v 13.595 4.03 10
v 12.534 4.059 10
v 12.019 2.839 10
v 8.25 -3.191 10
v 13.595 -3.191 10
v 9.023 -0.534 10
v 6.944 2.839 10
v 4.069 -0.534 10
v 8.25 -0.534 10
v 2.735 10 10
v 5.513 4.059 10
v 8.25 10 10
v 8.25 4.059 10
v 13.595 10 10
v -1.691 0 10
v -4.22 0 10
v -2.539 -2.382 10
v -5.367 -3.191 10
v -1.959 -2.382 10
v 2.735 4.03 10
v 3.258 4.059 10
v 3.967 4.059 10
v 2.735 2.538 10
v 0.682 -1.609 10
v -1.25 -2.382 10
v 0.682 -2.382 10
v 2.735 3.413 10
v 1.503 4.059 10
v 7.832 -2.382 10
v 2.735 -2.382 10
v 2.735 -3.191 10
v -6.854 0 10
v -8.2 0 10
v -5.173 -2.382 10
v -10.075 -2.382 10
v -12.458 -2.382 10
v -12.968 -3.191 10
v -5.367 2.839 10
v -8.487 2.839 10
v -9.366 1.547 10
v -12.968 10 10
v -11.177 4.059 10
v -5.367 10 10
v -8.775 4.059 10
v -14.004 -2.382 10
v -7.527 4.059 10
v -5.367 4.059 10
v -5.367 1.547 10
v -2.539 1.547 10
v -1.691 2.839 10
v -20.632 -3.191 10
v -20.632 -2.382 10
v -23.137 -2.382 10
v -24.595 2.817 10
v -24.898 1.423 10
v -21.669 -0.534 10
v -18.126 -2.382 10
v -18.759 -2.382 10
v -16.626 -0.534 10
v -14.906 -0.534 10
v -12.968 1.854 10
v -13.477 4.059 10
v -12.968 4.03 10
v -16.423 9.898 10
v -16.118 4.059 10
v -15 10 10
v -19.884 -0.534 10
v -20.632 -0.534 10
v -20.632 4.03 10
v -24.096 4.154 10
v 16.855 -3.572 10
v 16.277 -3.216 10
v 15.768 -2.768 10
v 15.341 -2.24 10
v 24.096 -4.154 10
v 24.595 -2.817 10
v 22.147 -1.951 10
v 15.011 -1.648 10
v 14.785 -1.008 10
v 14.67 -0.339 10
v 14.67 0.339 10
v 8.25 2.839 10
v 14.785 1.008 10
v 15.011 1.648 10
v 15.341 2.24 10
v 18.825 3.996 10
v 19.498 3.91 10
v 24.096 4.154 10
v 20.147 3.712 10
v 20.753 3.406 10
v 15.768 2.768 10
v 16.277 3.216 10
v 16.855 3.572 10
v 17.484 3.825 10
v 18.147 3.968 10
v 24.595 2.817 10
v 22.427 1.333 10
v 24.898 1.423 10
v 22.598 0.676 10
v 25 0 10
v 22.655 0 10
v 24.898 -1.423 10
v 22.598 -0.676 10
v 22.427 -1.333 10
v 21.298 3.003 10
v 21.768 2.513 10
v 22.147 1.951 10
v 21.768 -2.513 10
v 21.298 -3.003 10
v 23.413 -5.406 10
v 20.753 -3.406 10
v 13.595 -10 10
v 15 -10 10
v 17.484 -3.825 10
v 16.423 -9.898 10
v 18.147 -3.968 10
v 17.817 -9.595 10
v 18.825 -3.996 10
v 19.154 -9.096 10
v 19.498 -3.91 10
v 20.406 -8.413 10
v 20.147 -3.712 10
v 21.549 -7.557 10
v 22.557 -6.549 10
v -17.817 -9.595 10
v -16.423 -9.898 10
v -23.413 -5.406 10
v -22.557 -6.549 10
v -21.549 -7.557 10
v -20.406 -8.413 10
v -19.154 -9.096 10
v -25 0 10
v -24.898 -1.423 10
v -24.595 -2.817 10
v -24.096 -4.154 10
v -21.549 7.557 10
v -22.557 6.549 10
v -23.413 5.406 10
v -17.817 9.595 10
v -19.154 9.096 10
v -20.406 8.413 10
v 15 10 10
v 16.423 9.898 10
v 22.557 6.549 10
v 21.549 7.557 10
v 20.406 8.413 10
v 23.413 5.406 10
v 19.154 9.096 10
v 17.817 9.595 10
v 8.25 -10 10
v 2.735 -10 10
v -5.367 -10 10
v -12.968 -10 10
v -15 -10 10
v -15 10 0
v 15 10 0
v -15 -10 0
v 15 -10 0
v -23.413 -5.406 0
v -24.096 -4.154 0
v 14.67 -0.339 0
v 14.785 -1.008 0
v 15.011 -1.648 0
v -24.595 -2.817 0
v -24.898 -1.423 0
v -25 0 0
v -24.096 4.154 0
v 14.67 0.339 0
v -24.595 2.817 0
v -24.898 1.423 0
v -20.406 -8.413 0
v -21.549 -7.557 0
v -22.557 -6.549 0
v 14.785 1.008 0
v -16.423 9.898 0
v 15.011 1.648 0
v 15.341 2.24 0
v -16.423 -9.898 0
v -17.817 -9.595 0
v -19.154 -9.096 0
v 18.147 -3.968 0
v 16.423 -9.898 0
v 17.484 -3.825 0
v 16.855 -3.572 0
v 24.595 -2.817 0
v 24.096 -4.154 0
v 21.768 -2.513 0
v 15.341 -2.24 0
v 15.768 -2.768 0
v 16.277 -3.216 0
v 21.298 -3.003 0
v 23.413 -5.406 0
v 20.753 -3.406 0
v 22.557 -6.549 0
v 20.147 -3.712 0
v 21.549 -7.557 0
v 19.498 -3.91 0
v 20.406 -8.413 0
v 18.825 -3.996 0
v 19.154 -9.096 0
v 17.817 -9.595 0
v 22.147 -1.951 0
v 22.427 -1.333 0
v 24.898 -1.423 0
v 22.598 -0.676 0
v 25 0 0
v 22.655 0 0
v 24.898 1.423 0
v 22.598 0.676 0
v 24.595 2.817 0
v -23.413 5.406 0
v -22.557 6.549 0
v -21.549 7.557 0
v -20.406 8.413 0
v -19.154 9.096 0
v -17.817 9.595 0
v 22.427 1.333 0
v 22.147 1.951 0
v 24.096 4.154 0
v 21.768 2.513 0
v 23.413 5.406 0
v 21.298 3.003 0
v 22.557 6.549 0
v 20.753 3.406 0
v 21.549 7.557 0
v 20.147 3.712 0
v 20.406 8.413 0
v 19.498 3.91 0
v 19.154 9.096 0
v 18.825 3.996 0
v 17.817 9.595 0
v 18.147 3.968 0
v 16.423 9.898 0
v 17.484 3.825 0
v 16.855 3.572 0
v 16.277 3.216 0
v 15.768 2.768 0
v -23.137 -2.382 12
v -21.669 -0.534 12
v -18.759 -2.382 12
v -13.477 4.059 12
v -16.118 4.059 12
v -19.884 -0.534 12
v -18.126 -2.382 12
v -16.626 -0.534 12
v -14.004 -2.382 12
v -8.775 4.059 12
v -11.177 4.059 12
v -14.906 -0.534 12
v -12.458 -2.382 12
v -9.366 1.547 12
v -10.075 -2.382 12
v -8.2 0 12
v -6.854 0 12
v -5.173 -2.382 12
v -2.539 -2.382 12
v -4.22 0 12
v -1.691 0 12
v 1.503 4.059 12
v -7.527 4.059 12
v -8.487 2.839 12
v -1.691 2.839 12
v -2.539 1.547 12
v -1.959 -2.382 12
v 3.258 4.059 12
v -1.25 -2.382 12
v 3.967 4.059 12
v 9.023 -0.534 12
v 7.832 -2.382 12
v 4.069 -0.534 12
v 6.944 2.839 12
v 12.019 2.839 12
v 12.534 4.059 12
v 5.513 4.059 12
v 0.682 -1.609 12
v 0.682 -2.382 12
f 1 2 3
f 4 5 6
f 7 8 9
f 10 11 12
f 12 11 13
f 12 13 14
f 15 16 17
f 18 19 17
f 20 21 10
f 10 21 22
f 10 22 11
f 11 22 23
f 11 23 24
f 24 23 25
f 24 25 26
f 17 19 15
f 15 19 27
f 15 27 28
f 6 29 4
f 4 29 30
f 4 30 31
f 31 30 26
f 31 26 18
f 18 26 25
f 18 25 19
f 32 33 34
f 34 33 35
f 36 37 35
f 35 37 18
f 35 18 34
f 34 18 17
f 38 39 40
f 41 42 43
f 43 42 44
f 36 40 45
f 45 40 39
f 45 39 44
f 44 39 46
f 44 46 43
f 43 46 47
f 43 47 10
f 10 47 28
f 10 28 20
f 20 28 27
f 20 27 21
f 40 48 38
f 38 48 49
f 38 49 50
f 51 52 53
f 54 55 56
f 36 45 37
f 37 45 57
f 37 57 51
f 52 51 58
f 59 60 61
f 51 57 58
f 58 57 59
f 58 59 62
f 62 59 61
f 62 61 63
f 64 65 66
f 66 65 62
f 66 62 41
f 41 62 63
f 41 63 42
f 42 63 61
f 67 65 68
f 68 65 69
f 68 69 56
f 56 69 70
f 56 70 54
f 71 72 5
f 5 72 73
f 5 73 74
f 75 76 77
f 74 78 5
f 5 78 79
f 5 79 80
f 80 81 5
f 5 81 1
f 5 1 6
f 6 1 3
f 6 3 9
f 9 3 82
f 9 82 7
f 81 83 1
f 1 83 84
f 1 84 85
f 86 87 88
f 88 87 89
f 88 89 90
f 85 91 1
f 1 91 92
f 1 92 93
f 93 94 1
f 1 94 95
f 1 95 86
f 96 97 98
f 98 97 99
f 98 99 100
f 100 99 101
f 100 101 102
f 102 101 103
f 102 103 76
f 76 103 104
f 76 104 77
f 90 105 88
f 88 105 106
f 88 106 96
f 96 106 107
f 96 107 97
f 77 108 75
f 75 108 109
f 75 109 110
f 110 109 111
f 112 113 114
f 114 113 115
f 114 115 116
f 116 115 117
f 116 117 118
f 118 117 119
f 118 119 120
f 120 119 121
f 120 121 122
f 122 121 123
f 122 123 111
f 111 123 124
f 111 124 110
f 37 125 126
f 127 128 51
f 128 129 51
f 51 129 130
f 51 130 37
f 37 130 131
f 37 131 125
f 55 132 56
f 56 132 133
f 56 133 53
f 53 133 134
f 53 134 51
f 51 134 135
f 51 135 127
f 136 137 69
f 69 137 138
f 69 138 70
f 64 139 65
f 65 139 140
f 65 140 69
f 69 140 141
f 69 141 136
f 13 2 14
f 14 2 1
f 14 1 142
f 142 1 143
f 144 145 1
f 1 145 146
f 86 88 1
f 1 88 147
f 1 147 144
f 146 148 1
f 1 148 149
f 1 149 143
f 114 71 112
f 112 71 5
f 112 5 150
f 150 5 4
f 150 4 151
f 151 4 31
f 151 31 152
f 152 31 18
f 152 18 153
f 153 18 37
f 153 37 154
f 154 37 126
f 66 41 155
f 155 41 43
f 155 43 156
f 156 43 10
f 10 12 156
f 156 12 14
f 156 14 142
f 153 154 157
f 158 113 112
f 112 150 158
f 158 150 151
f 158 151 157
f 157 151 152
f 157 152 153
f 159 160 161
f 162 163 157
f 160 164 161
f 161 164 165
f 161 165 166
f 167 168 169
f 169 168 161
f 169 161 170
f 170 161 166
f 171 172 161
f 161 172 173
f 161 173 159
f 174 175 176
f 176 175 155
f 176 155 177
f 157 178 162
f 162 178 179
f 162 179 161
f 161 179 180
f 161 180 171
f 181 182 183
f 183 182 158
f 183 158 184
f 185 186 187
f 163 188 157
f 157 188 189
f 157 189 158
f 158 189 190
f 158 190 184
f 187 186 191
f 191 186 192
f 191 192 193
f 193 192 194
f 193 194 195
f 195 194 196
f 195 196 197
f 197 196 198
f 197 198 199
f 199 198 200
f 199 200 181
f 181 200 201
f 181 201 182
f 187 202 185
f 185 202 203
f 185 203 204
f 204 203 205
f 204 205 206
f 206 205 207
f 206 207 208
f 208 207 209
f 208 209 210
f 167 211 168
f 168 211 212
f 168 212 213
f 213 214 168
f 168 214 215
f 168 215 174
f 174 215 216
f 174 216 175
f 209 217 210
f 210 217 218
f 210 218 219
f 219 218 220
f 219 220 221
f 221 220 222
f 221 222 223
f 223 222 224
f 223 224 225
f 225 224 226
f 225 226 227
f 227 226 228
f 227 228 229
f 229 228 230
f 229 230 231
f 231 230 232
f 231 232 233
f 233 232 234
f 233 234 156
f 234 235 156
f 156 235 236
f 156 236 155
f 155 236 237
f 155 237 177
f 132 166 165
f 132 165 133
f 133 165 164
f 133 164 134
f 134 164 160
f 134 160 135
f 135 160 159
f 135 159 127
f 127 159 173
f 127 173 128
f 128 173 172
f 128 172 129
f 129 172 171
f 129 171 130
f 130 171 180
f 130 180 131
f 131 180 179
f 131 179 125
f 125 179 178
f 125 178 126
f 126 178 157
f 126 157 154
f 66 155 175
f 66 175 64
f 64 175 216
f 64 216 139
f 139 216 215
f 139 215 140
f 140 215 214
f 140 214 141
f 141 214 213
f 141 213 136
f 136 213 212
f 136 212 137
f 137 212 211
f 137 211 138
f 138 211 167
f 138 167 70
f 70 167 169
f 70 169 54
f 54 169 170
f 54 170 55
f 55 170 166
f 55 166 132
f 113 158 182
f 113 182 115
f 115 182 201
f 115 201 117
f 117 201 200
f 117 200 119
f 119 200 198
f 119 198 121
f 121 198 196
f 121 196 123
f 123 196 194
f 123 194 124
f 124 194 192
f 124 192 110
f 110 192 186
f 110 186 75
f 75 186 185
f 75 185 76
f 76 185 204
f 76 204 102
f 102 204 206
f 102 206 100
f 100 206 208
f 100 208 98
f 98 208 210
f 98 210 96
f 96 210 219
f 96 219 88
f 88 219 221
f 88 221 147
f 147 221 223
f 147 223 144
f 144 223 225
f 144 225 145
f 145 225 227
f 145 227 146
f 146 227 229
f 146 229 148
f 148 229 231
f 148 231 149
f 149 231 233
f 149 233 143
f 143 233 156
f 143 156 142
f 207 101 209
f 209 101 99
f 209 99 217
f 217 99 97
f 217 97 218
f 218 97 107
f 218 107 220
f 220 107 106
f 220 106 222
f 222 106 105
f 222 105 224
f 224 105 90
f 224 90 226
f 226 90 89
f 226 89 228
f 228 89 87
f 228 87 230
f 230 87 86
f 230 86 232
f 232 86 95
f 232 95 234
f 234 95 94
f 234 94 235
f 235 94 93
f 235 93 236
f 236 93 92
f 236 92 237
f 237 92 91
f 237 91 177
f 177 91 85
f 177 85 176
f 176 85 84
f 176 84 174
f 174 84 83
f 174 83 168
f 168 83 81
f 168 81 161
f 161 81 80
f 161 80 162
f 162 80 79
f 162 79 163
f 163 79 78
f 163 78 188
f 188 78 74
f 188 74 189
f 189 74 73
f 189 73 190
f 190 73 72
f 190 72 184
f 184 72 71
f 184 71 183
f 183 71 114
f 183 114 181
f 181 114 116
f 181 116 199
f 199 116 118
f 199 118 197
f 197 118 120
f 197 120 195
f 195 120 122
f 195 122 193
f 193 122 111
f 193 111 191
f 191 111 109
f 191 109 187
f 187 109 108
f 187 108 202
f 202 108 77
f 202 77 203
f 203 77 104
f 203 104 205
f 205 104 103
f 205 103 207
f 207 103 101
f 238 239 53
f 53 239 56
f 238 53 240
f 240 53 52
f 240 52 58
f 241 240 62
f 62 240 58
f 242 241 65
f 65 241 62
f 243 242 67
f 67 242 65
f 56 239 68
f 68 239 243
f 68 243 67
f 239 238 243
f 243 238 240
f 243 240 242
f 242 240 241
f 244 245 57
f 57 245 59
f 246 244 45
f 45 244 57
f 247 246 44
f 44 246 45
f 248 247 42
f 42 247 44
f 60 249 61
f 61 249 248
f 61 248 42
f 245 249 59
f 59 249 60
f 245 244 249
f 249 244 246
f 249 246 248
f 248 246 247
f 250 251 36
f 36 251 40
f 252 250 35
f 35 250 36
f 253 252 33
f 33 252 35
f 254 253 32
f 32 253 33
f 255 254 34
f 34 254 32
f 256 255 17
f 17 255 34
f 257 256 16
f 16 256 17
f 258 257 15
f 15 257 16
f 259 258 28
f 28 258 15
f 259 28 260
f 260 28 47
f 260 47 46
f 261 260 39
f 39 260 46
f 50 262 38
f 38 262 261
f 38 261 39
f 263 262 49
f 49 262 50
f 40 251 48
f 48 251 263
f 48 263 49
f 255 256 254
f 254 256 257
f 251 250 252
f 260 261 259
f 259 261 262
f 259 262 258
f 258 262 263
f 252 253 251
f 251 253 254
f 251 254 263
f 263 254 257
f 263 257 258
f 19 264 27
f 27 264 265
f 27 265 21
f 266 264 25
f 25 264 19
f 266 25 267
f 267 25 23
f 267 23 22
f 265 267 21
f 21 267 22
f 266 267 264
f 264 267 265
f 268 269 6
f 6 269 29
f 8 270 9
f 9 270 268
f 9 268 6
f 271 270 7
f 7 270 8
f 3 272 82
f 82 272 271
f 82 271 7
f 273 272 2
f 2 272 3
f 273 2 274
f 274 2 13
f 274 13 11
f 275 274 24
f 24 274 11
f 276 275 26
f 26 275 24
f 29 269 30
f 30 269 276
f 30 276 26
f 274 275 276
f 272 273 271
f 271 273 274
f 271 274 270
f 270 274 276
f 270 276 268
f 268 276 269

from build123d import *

# Parameters (mm, degrees)
ESQUISSE1_W             = 50
ESQUISSE1_H             = 20
BOSS_EXTRU_1_DEPTH      = 10
CONG_1_R                = 10
ESQUISSE2_R             = 4
ENL_V_MAT_EXTRU_1_DEPTH = 29.722813233
BOSS_EXTRU_2_DEPTH      = 2


with BuildPart() as part:
    # Esquisse1 → Boss.-Extru.1 (new body)
    with BuildSketch(Plane.XY):
        Rectangle(ESQUISSE1_W, ESQUISSE1_H)
    extrude(amount=BOSS_EXTRU_1_DEPTH)

    # Congé1
    cong_1_edges = [part.edges().sort_by_distance(p)[0] for p in [
        (-25, 10, 5),
        (25, 10, 5),
        (25, -10, 5),
        (-25, -10, 5),
    ]]
    fillet(cong_1_edges, radius=CONG_1_R - 0.0001)  # a hair under: the kernel refuses the full size

    # Esquisse2 → Enlèv. mat.-Extru.1 (cut, through all)
    with BuildSketch(Plane.XY.offset(10)):
        with Locations((18.655435278, 0)):
            Circle(ESQUISSE2_R)
    extrude(amount=-ENL_V_MAT_EXTRU_1_DEPTH, mode=Mode.SUBTRACT)

    # Esquisse3 → Boss.-Extru.2 (add)
    with BuildSketch(Plane.XY.offset(10)):
        Polygon((-23.137412504, -2.382112664), (-18.75901173, -2.382112664), (-13.477180662, 4.059144735), (-16.118096196, 4.059144735), (-19.884214818, -0.533682853), (-21.669171822, -0.533682853), align=None)
        Polygon((-18.126480253, -2.382112664), (-14.004075518, -2.382112664), (-8.774539808, 4.059144735), (-11.177021234, 4.059144735), (-14.905851553, -0.533682853), (-16.625774862, -0.533682853), align=None)
        Polygon((-12.458173742, -2.382112664), (-10.074908504, -2.382112664), (-8.200459195, 0), (-6.854279805, 0), (-5.173191017, -2.382112664), (-2.538637347, -2.382112664), (-4.219726135, 0), (-1.691447938, 0), (1.502633165, 4.059144735), (-7.5273695, 4.059144735), (-8.487196781, 2.839364232), (-1.691447938, 2.839364232), (-2.538637347, 1.547054349), (-9.36637019, 1.547054349), align=None)
        Polygon((3.258494312, 4.059144735), (3.967032626, 4.059144735), (-1.250385868, -2.382112664), (-1.958924181, -2.382112664), align=None)
        Polygon((7.831787065, -2.382112664), (0.681991352, -2.382112664), (0.681991352, -1.609161776), (5.512934401, 4.059144735), (12.533904966, 4.059144735), (12.018604374, 2.839364232), (6.944143524, 2.839364232), (4.069387486, -0.533682853), (9.023419684, -0.533682853), align=None)
    extrude(amount=BOSS_EXTRU_2_DEPTH)


solid = part.part
